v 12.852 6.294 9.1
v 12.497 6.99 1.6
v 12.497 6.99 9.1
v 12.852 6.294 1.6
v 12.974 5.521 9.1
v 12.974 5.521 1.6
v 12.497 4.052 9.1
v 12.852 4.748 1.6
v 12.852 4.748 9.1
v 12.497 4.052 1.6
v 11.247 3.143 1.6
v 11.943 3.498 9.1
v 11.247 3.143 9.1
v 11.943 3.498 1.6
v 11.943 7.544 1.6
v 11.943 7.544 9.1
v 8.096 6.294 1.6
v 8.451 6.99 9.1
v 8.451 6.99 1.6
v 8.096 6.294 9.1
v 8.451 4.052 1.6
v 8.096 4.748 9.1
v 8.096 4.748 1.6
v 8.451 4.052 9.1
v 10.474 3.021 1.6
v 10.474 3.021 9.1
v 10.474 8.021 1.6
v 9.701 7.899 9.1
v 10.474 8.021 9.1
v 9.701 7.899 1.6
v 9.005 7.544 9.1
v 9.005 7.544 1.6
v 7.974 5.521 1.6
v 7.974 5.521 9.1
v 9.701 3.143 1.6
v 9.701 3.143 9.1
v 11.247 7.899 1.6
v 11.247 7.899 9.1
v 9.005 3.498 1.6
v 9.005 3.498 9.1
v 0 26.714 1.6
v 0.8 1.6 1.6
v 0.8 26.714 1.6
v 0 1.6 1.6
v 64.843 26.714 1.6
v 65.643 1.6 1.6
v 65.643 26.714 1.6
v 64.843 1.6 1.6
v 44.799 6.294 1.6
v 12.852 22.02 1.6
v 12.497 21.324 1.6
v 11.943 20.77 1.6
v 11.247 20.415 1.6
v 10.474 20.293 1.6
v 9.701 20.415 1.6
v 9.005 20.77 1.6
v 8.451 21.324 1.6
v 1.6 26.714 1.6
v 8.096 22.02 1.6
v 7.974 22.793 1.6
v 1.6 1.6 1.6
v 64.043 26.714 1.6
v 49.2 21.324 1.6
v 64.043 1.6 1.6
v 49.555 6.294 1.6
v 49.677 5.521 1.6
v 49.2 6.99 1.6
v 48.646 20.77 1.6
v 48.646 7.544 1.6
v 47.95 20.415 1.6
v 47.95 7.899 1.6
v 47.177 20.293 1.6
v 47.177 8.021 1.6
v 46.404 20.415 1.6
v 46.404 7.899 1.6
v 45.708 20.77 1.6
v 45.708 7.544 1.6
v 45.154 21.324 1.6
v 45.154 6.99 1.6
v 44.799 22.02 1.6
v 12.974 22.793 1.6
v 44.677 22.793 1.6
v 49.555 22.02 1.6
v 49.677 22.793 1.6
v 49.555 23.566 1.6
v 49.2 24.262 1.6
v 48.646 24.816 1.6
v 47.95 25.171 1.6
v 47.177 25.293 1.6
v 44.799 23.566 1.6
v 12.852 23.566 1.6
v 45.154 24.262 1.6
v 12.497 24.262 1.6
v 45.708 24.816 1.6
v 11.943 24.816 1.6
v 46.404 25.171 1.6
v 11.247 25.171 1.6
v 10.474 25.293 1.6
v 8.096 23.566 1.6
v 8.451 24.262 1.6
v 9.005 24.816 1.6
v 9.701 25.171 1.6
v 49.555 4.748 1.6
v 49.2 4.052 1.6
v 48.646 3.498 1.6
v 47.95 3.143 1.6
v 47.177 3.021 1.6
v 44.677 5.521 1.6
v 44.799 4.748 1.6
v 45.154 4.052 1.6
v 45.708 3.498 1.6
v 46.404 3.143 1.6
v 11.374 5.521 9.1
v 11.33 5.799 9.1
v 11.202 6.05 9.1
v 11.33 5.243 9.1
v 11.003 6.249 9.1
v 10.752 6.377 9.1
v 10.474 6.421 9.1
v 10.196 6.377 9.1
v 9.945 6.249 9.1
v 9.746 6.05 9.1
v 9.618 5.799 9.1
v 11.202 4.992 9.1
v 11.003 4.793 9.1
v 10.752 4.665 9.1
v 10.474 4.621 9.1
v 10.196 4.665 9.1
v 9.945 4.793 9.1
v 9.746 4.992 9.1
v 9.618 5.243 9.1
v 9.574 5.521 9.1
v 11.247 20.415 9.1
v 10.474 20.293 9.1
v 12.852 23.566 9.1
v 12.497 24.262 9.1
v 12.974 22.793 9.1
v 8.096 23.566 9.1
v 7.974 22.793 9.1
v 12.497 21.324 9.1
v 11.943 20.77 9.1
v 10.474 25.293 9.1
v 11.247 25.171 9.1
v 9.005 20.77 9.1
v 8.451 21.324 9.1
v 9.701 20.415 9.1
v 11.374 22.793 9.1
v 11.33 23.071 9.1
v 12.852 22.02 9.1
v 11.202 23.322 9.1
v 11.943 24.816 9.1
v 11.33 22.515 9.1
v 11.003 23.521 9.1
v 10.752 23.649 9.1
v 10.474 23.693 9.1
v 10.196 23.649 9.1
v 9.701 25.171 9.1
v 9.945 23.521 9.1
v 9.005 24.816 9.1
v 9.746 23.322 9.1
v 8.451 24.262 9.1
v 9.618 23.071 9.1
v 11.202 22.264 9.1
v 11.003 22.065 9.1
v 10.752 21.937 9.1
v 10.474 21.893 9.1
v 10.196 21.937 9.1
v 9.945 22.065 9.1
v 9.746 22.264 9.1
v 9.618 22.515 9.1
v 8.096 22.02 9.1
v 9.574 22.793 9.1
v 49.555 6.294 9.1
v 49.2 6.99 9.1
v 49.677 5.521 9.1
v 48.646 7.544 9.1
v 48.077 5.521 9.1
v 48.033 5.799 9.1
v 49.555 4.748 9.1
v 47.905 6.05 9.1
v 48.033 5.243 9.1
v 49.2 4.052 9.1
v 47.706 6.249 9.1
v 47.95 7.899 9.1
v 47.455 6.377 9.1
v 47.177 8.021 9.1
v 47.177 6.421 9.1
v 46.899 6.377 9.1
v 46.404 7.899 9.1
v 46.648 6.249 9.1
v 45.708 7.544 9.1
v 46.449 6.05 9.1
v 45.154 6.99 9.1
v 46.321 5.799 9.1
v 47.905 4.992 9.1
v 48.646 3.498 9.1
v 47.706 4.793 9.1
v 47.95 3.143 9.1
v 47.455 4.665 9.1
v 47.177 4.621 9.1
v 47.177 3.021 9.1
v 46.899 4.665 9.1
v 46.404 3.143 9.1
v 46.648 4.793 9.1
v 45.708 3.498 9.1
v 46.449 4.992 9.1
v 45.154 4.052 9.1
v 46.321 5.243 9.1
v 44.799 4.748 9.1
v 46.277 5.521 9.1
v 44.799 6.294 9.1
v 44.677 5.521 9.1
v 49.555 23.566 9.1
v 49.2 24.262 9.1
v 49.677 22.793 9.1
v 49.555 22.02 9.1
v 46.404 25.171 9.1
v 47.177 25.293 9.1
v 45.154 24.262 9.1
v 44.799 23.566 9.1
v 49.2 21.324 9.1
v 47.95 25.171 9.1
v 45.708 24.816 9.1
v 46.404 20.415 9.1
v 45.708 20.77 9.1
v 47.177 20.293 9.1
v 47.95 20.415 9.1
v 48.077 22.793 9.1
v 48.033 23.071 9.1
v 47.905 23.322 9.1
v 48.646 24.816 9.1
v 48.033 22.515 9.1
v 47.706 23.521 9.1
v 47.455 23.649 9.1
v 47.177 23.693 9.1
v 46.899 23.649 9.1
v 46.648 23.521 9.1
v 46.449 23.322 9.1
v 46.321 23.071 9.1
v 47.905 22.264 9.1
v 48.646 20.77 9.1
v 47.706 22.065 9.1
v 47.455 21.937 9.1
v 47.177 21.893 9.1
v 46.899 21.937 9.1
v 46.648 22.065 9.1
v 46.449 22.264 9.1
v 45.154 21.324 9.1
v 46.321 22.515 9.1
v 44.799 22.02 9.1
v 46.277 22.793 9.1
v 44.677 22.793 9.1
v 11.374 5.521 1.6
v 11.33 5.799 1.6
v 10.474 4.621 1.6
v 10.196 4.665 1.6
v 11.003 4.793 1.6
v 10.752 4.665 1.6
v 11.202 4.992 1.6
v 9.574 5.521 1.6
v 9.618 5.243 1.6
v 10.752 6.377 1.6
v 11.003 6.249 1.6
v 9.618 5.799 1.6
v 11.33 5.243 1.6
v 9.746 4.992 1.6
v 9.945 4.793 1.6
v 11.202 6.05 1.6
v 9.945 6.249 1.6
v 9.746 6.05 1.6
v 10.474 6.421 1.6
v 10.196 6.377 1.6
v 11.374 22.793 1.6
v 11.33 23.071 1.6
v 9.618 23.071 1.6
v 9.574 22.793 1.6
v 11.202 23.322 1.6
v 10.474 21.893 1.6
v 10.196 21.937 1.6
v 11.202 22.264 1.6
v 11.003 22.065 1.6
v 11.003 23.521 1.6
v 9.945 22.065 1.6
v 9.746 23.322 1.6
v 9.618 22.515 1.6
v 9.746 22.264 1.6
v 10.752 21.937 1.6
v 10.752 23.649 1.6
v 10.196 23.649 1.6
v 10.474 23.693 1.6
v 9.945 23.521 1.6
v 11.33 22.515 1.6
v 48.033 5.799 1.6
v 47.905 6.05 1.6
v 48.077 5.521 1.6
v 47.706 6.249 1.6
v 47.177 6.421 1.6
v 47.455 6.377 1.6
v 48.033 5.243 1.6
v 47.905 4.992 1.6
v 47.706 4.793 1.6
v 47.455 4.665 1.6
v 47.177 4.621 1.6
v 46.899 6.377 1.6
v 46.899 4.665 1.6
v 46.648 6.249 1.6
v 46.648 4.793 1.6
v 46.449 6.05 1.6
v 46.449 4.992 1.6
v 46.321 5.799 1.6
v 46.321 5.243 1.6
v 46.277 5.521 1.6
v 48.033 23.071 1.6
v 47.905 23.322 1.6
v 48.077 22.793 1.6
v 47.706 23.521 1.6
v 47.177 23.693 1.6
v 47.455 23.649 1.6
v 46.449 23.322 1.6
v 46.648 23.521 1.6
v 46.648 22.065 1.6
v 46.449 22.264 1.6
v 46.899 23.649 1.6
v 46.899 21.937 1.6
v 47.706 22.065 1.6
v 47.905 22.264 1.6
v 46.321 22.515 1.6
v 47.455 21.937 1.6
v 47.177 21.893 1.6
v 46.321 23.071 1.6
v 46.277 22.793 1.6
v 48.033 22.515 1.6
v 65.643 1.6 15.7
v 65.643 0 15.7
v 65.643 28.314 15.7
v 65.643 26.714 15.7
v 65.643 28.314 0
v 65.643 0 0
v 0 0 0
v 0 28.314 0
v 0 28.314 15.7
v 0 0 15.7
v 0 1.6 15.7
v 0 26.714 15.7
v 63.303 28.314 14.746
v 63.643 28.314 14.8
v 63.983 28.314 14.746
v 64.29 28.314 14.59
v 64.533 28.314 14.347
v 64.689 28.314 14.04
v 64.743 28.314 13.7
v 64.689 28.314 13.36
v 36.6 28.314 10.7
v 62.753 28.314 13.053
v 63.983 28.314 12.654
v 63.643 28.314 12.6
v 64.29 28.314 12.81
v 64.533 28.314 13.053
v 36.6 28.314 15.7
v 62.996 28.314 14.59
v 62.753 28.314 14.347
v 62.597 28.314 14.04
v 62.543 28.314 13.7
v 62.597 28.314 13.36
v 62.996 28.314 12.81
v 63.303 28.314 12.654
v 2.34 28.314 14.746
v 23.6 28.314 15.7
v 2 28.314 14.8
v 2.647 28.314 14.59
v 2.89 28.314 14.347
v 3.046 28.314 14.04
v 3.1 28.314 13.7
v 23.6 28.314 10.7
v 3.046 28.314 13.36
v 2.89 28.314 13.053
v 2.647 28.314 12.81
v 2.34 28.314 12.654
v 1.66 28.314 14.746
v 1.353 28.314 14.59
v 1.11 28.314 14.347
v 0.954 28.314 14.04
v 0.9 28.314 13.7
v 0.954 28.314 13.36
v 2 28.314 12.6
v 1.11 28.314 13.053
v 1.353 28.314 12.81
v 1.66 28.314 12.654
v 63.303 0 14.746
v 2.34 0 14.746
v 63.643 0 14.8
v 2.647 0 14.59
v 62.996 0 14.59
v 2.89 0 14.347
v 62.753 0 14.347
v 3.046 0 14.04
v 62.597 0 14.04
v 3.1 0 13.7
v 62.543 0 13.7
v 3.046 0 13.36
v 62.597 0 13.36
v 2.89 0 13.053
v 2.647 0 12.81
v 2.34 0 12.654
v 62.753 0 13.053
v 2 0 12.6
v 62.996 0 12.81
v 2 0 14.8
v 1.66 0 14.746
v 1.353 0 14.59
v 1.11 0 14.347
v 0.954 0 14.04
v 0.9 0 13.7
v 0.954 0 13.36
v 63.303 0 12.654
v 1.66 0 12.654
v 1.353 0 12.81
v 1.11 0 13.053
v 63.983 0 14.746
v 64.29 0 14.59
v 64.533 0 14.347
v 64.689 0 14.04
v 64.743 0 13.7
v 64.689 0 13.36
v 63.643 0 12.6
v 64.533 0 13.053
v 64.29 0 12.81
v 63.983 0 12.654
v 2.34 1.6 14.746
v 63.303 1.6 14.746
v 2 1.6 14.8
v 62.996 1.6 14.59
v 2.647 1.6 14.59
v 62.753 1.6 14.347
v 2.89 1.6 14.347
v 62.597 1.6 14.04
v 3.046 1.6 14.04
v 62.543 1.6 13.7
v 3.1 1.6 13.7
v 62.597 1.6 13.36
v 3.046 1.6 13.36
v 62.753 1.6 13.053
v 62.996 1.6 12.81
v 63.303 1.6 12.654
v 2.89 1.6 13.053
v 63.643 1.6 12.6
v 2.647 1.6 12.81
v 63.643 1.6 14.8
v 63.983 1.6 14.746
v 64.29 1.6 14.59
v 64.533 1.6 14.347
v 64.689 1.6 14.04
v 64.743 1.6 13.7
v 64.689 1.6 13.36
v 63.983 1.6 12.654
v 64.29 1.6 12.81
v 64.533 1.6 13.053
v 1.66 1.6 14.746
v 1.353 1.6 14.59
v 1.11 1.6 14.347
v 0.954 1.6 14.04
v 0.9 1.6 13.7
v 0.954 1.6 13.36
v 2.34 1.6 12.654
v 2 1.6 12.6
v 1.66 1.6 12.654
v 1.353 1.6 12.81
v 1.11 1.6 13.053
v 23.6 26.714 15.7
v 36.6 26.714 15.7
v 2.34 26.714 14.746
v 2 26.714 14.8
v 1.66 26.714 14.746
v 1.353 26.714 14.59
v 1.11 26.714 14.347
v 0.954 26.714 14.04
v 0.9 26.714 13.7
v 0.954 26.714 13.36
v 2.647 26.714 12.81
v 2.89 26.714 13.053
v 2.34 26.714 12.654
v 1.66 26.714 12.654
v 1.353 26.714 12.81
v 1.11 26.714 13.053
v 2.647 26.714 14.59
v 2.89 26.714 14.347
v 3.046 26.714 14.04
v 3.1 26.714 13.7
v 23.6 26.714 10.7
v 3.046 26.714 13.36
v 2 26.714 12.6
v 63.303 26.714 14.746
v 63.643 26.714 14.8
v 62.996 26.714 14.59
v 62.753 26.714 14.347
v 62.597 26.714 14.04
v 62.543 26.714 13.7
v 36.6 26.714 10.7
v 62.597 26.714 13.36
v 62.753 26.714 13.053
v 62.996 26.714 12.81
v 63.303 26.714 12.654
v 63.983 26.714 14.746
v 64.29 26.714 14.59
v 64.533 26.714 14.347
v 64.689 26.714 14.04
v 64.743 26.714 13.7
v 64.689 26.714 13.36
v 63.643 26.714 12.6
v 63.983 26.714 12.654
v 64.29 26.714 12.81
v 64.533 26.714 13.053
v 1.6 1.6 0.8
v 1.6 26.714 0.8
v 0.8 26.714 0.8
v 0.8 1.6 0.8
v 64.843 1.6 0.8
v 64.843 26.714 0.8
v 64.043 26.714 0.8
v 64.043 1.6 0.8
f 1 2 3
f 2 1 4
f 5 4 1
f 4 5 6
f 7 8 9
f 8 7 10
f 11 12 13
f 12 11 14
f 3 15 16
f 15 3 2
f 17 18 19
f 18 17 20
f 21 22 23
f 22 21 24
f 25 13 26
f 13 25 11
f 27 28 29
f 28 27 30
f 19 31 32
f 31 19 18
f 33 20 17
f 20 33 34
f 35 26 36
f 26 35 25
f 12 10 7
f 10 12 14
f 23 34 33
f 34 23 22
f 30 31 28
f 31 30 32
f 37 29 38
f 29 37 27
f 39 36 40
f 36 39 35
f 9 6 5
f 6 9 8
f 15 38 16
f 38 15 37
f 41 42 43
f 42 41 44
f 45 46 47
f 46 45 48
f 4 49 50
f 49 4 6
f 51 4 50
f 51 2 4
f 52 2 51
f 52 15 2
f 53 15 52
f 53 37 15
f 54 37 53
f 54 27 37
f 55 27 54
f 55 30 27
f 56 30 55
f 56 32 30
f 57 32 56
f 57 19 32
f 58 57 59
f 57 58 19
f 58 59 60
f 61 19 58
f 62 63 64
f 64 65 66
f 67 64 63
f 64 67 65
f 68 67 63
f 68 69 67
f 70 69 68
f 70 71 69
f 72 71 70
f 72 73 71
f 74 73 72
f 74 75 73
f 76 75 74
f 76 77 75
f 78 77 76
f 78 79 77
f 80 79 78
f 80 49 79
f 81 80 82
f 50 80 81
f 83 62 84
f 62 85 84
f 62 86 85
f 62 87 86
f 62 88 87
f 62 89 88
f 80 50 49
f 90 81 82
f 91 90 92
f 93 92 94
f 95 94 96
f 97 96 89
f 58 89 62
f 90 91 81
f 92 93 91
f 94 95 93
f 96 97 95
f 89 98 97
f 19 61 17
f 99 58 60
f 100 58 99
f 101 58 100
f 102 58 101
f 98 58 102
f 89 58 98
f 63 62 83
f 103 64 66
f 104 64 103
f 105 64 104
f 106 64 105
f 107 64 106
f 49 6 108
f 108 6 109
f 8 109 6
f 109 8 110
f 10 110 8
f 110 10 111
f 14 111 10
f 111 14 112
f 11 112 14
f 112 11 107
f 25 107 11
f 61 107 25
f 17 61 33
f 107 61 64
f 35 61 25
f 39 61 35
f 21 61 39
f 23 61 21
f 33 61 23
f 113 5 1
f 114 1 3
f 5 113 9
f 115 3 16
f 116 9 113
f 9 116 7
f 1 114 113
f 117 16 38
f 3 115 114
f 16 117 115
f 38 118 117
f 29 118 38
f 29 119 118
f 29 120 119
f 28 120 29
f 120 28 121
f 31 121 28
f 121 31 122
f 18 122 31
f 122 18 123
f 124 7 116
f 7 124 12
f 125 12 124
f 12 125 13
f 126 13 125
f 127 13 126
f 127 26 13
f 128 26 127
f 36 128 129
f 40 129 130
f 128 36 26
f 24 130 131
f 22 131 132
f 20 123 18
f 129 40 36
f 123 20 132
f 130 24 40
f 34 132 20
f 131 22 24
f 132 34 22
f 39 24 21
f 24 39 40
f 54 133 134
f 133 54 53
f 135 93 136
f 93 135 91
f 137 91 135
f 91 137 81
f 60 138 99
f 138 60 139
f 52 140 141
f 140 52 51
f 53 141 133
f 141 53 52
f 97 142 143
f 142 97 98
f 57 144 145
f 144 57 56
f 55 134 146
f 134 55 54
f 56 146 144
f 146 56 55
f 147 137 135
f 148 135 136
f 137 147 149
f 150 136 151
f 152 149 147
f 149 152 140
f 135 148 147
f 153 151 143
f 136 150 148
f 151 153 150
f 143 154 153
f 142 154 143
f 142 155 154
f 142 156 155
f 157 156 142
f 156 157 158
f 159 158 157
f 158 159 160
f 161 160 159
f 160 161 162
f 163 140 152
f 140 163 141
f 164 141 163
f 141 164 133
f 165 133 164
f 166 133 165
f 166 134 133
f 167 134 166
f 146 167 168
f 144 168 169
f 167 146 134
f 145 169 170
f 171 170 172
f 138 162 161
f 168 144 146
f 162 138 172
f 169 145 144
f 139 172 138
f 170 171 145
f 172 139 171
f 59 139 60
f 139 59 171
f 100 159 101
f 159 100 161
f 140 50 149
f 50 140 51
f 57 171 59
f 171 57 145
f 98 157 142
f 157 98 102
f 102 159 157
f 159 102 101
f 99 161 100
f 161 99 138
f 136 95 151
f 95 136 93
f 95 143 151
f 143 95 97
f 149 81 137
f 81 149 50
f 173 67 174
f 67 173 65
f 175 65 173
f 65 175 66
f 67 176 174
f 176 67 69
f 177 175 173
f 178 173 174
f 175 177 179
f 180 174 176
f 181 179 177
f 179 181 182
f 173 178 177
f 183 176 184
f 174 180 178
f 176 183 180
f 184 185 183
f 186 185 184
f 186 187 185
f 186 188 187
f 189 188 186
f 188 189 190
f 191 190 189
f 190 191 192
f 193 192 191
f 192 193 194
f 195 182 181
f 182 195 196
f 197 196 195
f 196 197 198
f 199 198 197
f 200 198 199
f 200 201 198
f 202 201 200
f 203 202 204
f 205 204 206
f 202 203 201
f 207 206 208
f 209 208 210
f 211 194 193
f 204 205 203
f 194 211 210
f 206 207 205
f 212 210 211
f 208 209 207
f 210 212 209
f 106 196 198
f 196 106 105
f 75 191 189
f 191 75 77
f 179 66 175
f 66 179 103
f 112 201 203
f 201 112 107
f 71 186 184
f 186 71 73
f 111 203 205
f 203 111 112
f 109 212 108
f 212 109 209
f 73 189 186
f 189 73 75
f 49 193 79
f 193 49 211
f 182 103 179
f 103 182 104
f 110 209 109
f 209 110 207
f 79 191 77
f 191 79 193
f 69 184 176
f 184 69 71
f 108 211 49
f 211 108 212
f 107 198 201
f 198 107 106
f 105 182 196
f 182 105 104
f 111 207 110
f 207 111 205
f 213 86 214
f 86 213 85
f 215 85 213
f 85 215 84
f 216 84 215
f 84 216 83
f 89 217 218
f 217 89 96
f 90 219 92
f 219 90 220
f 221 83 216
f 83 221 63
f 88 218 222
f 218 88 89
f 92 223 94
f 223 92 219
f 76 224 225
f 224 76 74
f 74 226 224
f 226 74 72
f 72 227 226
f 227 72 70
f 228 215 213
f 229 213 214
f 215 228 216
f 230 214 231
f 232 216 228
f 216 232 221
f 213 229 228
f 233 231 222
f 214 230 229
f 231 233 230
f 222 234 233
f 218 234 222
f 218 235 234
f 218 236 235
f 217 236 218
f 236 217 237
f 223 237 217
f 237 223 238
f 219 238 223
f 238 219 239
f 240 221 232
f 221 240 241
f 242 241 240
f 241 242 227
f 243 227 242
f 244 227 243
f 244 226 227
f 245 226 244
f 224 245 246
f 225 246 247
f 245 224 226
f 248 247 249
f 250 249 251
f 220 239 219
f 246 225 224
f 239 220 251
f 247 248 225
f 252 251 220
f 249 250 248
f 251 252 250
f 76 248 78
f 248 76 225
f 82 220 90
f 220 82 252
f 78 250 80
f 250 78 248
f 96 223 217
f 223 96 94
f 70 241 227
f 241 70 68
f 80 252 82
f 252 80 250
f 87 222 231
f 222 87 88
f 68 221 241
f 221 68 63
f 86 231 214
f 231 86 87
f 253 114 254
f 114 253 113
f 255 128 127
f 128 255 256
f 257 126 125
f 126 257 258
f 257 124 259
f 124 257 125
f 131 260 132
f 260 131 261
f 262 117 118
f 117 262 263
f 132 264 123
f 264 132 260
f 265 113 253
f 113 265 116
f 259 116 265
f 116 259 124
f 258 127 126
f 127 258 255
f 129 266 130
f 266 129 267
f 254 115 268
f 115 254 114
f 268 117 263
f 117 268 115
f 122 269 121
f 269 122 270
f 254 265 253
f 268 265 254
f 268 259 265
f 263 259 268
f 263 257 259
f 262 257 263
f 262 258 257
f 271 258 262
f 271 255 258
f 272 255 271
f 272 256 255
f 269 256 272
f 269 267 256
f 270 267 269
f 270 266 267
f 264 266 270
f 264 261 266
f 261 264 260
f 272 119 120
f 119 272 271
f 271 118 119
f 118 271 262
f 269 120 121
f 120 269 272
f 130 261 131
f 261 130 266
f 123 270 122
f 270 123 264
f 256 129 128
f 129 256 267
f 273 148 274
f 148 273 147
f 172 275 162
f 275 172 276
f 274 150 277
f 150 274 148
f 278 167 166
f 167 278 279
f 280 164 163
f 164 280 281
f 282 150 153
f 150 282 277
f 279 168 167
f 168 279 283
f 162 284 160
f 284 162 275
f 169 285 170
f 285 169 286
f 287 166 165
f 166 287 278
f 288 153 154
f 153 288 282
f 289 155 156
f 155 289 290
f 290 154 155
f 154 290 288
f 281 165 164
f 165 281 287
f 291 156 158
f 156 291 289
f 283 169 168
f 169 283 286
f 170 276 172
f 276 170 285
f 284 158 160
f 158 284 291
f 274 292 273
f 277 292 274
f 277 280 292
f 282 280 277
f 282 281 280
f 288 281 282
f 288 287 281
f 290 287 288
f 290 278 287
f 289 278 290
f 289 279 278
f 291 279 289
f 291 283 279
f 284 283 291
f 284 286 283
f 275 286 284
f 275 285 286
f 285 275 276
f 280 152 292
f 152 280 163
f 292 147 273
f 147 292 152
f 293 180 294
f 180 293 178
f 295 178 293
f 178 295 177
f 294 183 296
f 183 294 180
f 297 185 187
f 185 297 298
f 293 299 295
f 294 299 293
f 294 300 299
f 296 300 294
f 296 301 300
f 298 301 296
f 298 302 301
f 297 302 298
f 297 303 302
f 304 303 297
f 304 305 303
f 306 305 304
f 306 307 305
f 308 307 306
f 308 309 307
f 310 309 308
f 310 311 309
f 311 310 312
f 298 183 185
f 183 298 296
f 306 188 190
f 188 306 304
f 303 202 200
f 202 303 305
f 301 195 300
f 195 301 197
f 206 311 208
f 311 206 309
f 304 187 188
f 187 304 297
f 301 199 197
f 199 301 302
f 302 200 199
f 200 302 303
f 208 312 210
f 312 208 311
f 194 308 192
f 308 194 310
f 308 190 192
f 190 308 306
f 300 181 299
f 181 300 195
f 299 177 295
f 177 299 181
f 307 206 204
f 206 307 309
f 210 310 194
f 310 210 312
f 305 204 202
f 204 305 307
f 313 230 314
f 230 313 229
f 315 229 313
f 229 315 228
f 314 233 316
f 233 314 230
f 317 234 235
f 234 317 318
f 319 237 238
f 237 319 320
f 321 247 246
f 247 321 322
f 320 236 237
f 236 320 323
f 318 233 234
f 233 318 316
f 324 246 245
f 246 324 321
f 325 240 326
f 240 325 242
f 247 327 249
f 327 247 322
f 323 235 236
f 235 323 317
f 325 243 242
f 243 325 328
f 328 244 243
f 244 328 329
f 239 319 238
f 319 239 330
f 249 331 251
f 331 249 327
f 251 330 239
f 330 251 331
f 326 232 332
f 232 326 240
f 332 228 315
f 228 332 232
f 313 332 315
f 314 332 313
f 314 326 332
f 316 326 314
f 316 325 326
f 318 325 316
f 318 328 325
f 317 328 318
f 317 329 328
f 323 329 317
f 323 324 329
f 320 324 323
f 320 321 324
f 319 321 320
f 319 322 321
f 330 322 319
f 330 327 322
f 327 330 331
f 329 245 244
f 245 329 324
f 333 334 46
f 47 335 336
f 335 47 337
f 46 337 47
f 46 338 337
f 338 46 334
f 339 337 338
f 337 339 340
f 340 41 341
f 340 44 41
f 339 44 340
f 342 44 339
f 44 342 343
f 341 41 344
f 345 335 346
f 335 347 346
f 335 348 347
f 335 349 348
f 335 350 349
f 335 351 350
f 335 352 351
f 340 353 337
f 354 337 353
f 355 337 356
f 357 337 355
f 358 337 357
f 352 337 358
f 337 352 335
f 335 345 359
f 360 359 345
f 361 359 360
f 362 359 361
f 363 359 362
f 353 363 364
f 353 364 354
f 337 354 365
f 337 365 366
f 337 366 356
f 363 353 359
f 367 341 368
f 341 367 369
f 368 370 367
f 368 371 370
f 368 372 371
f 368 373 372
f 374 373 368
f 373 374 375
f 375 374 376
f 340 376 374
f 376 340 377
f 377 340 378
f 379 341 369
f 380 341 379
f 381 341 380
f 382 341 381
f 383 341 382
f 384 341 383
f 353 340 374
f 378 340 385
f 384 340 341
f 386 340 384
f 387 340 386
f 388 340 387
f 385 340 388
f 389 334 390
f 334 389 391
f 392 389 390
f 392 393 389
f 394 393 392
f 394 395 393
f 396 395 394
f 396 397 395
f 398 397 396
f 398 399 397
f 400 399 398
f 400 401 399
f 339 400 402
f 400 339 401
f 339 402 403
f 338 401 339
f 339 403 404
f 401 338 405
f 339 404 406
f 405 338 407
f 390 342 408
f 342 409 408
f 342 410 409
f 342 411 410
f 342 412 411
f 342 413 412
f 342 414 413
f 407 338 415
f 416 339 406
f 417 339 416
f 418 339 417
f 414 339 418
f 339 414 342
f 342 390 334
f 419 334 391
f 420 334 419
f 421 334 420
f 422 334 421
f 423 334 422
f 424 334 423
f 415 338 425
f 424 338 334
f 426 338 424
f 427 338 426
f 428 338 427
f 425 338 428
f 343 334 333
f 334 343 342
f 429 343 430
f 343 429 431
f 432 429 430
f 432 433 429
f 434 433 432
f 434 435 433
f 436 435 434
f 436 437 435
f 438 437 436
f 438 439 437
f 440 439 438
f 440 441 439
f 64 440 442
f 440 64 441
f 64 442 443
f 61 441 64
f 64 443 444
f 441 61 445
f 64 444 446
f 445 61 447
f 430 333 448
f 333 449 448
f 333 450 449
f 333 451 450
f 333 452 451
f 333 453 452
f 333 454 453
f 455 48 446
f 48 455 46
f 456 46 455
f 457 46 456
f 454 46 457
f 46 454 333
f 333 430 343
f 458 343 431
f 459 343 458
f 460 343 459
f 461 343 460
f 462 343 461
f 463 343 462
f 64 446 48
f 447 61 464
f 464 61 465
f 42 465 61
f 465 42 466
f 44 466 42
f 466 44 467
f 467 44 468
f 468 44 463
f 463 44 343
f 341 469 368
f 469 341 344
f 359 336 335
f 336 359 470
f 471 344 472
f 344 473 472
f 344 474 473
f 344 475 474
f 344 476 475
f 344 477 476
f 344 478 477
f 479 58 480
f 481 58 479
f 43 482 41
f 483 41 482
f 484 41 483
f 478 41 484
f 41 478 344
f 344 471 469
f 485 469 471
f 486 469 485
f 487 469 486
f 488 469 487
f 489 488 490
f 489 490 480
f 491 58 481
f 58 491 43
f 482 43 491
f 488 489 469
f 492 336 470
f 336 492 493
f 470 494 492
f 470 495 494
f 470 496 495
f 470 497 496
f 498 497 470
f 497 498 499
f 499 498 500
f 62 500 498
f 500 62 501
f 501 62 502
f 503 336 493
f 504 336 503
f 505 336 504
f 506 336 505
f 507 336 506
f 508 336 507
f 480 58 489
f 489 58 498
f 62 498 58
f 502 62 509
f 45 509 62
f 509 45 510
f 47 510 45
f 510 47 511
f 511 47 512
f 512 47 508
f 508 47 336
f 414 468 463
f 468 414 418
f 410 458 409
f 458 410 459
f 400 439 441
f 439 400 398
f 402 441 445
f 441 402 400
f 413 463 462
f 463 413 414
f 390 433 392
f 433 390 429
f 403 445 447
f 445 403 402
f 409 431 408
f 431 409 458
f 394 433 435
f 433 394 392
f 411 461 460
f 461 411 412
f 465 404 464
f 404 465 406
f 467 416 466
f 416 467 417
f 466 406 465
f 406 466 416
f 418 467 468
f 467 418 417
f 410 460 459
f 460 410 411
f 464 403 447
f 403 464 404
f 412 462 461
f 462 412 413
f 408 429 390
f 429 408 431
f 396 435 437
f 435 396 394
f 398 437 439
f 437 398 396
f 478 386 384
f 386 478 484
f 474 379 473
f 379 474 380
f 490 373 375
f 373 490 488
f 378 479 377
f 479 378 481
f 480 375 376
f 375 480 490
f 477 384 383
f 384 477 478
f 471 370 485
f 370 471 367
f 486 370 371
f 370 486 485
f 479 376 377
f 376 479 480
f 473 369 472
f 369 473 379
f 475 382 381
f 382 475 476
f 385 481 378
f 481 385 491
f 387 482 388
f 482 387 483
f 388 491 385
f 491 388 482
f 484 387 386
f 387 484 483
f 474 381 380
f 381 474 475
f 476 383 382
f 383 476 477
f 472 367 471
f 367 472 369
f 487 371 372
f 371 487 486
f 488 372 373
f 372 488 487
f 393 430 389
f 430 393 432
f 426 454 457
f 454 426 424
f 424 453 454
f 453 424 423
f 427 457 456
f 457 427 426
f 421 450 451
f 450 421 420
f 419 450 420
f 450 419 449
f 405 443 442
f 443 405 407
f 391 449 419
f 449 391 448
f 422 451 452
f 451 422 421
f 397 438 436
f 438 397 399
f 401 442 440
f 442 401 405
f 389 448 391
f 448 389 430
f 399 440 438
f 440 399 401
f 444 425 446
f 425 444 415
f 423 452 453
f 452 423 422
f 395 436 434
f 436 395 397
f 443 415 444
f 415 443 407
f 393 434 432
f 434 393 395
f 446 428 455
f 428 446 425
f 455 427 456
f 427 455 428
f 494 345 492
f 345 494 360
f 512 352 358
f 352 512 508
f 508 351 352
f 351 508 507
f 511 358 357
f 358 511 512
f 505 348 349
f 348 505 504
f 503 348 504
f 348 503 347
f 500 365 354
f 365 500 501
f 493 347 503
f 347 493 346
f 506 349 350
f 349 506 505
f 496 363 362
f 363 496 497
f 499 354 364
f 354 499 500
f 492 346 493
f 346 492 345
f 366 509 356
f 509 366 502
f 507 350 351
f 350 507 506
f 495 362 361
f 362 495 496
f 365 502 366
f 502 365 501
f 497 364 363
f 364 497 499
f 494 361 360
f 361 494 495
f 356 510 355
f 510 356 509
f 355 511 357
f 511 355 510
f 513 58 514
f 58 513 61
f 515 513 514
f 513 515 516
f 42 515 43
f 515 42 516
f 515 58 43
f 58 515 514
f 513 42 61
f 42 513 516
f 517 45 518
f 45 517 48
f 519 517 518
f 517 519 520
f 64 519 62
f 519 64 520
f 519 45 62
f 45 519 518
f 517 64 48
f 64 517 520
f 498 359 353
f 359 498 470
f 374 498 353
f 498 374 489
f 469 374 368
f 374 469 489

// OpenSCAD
// file: settings.scad
// SPDX-FileCopyrightText: 2025 Rafael G. Martins <rafael@rafaelmartins.eng.br>
// SPDX-License-Identifier: CERN-OHL-S-2.0

thickness = 1.6;

devboard_pcb_height = 1.6;
devboard_width = 23.114;
devboard_length = 51.943;
devboard_screw_padding_front_x = 7.874;
devboard_screw_padding_back_x = 7.366;
devboard_screw_padding_y = 2.921;
devboard_screw_distance_y = 2 * 8.636;
devboard_screw_distance_x = 36.703;
devboard_screw_base_d = 5;
devboard_screw_base_h = 7.5;
devboard_distance_usb = devboard_screw_padding_y + 8.636;
devboard_distance_led = devboard_screw_padding_y + 1.524;
devboard_pcb_padding_x = thickness + 1;
devboard_pcb_padding_y = thickness + 1;

length = devboard_length + 8.5 + 2 * devboard_pcb_padding_x;
width = devboard_width + 2 * devboard_pcb_padding_y;
height = thickness + devboard_screw_base_h + devboard_pcb_height + 5;

led_d = 3.2;
usb_height = 4.4;
usb_width = 8.2;

flatcable_distance = 21;
flatcable_width = 13;
flatcable_height = 0.95;
// file: lib/simple-case.scad
// SPDX-FileCopyrightText: 2024 Rafael G. Martins <rafael@rafaelmartins.eng.br>
// SPDX-License-Identifier: CERN-OHL-S-2.0

module simple_case_base(width, length, height, thickness=1.6, screw_d=2, screw_p=2, gap=0) {
    difference() {
        union() {
            cube([width, length, thickness]);
            cube([width, thickness, height]);
            translate([0, length - thickness, 0])
                cube([width, thickness, height]);
        }

        translate([(thickness - gap) / 2, thickness, (thickness - gap) / 2])
            cube([gap + thickness / 2, length - 2 * thickness, gap + thickness / 2]);
        translate([width - thickness - gap / 2, thickness, (thickness - gap) / 2])
            cube([gap + thickness / 2, length - 2 * thickness, gap + thickness / 2]);

        for (i=[0:1])
            for (j=[0:1])
                translate([i * (width - screw_d - screw_p) + (screw_d + screw_p) / 2,
                           j * (length - thickness),
                           height - (screw_d + screw_p) / 2])
                    rotate([-90, 0, 0])
                        cylinder(h=thickness, d=screw_d * 1.1, $fn=20);
    }
}

module simple_case_cover(width, length, height, thickness=1.6, screw_d=2, screw_p=2, screw_h=6, gap=0) {
    difference() {
        union() {
            cube([width, length - 2 * (thickness + gap), thickness]);
            cube([thickness, length - 2 * (thickness + gap), height - thickness - gap]);
            translate([width - thickness, 0, 0])
                cube([thickness, length - 2 * (thickness + gap), height - thickness - gap]);

            for (i=[0:1])
                for (j=[0:1])
                    translate([i * (width - screw_d - screw_p),
                               j * (length - 2 * (thickness + gap) - screw_h - screw_p), 0])
                        cube([screw_d + screw_p, screw_h + screw_p, screw_d + screw_p]);

            translate([thickness / 2, thickness, height - thickness - gap])
                cube([thickness / 2, length - 4 * thickness - 2 * gap, thickness / 2]);
            translate([width - thickness, thickness, height - thickness - gap])
                cube([thickness / 2, length - 4 * thickness - 2 * gap, thickness / 2]);
        }

        for (i=[0:1])
            for (j=[0:1])
                translate([i * (width - screw_d - screw_p) + (screw_d + screw_p) / 2,
                           j * (length - 2 * (thickness + gap) - screw_h),
                           (screw_d + screw_p) / 2])
                    rotate([-90, 0, 0])
                        cylinder(h=screw_h, d=screw_d * 0.9, $fn=20);
    }
}
// main file
// SPDX-FileCopyrightText: 2025 Rafael G. Martins <rafael@rafaelmartins.eng.br>
// SPDX-License-Identifier: CERN-OHL-S-2.0

include <lib/simple-case.scad>
include <settings.scad>

difference() {
    union() {
        simple_case_base(length, width, height, thickness=thickness, gap=0);

        for (i=[0:1])
            for (j=[0:1])
                translate([devboard_pcb_padding_x + devboard_screw_padding_front_x + i * devboard_screw_distance_x,
                           devboard_pcb_padding_y + devboard_screw_padding_y + j * devboard_screw_distance_y,
                           thickness])
                    cylinder(h=devboard_screw_base_h, d=devboard_screw_base_d, $fn=20);
    }

    for (i=[0:1])
        for (j=[0:1])
            translate([devboard_pcb_padding_x + devboard_screw_padding_front_x + i * devboard_screw_distance_x,
                       devboard_pcb_padding_y + devboard_screw_padding_y + j * devboard_screw_distance_y,
                       thickness])
                cylinder(h=devboard_screw_base_h, d=1.8, $fn=20);

    translate([devboard_pcb_padding_x + flatcable_distance,
               width - thickness, thickness + devboard_screw_base_h + devboard_pcb_height])
        cube([flatcable_width, thickness, height - thickness - devboard_screw_base_h - devboard_pcb_height]);
}
